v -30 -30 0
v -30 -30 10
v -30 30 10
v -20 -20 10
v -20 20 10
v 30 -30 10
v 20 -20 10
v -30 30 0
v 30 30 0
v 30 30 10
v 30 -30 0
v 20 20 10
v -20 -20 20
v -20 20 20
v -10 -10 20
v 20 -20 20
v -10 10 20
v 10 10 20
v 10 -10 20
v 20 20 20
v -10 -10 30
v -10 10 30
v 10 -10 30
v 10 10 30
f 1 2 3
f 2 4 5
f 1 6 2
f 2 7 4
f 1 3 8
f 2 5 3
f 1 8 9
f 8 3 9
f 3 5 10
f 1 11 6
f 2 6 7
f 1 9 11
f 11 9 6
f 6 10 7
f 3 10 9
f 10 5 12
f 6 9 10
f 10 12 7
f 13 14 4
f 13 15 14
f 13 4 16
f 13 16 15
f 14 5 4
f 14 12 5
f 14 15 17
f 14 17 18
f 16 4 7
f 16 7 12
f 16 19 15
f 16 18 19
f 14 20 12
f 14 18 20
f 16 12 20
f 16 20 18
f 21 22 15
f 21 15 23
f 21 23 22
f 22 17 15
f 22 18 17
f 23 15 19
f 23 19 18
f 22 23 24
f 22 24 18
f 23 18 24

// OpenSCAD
// Stepped pyramid with three layers
union() {
    // Bottom layer: 60x60x10
    translate([-30, -30, 0])
        cube([60, 60, 10]);

    // Middle layer: 40x40x10
    translate([-20, -20, 10])
        cube([40, 40, 10]);

    // Top layer: 20x20x10
    translate([-10, -10, 20])
        cube([20, 20, 10]);
}
